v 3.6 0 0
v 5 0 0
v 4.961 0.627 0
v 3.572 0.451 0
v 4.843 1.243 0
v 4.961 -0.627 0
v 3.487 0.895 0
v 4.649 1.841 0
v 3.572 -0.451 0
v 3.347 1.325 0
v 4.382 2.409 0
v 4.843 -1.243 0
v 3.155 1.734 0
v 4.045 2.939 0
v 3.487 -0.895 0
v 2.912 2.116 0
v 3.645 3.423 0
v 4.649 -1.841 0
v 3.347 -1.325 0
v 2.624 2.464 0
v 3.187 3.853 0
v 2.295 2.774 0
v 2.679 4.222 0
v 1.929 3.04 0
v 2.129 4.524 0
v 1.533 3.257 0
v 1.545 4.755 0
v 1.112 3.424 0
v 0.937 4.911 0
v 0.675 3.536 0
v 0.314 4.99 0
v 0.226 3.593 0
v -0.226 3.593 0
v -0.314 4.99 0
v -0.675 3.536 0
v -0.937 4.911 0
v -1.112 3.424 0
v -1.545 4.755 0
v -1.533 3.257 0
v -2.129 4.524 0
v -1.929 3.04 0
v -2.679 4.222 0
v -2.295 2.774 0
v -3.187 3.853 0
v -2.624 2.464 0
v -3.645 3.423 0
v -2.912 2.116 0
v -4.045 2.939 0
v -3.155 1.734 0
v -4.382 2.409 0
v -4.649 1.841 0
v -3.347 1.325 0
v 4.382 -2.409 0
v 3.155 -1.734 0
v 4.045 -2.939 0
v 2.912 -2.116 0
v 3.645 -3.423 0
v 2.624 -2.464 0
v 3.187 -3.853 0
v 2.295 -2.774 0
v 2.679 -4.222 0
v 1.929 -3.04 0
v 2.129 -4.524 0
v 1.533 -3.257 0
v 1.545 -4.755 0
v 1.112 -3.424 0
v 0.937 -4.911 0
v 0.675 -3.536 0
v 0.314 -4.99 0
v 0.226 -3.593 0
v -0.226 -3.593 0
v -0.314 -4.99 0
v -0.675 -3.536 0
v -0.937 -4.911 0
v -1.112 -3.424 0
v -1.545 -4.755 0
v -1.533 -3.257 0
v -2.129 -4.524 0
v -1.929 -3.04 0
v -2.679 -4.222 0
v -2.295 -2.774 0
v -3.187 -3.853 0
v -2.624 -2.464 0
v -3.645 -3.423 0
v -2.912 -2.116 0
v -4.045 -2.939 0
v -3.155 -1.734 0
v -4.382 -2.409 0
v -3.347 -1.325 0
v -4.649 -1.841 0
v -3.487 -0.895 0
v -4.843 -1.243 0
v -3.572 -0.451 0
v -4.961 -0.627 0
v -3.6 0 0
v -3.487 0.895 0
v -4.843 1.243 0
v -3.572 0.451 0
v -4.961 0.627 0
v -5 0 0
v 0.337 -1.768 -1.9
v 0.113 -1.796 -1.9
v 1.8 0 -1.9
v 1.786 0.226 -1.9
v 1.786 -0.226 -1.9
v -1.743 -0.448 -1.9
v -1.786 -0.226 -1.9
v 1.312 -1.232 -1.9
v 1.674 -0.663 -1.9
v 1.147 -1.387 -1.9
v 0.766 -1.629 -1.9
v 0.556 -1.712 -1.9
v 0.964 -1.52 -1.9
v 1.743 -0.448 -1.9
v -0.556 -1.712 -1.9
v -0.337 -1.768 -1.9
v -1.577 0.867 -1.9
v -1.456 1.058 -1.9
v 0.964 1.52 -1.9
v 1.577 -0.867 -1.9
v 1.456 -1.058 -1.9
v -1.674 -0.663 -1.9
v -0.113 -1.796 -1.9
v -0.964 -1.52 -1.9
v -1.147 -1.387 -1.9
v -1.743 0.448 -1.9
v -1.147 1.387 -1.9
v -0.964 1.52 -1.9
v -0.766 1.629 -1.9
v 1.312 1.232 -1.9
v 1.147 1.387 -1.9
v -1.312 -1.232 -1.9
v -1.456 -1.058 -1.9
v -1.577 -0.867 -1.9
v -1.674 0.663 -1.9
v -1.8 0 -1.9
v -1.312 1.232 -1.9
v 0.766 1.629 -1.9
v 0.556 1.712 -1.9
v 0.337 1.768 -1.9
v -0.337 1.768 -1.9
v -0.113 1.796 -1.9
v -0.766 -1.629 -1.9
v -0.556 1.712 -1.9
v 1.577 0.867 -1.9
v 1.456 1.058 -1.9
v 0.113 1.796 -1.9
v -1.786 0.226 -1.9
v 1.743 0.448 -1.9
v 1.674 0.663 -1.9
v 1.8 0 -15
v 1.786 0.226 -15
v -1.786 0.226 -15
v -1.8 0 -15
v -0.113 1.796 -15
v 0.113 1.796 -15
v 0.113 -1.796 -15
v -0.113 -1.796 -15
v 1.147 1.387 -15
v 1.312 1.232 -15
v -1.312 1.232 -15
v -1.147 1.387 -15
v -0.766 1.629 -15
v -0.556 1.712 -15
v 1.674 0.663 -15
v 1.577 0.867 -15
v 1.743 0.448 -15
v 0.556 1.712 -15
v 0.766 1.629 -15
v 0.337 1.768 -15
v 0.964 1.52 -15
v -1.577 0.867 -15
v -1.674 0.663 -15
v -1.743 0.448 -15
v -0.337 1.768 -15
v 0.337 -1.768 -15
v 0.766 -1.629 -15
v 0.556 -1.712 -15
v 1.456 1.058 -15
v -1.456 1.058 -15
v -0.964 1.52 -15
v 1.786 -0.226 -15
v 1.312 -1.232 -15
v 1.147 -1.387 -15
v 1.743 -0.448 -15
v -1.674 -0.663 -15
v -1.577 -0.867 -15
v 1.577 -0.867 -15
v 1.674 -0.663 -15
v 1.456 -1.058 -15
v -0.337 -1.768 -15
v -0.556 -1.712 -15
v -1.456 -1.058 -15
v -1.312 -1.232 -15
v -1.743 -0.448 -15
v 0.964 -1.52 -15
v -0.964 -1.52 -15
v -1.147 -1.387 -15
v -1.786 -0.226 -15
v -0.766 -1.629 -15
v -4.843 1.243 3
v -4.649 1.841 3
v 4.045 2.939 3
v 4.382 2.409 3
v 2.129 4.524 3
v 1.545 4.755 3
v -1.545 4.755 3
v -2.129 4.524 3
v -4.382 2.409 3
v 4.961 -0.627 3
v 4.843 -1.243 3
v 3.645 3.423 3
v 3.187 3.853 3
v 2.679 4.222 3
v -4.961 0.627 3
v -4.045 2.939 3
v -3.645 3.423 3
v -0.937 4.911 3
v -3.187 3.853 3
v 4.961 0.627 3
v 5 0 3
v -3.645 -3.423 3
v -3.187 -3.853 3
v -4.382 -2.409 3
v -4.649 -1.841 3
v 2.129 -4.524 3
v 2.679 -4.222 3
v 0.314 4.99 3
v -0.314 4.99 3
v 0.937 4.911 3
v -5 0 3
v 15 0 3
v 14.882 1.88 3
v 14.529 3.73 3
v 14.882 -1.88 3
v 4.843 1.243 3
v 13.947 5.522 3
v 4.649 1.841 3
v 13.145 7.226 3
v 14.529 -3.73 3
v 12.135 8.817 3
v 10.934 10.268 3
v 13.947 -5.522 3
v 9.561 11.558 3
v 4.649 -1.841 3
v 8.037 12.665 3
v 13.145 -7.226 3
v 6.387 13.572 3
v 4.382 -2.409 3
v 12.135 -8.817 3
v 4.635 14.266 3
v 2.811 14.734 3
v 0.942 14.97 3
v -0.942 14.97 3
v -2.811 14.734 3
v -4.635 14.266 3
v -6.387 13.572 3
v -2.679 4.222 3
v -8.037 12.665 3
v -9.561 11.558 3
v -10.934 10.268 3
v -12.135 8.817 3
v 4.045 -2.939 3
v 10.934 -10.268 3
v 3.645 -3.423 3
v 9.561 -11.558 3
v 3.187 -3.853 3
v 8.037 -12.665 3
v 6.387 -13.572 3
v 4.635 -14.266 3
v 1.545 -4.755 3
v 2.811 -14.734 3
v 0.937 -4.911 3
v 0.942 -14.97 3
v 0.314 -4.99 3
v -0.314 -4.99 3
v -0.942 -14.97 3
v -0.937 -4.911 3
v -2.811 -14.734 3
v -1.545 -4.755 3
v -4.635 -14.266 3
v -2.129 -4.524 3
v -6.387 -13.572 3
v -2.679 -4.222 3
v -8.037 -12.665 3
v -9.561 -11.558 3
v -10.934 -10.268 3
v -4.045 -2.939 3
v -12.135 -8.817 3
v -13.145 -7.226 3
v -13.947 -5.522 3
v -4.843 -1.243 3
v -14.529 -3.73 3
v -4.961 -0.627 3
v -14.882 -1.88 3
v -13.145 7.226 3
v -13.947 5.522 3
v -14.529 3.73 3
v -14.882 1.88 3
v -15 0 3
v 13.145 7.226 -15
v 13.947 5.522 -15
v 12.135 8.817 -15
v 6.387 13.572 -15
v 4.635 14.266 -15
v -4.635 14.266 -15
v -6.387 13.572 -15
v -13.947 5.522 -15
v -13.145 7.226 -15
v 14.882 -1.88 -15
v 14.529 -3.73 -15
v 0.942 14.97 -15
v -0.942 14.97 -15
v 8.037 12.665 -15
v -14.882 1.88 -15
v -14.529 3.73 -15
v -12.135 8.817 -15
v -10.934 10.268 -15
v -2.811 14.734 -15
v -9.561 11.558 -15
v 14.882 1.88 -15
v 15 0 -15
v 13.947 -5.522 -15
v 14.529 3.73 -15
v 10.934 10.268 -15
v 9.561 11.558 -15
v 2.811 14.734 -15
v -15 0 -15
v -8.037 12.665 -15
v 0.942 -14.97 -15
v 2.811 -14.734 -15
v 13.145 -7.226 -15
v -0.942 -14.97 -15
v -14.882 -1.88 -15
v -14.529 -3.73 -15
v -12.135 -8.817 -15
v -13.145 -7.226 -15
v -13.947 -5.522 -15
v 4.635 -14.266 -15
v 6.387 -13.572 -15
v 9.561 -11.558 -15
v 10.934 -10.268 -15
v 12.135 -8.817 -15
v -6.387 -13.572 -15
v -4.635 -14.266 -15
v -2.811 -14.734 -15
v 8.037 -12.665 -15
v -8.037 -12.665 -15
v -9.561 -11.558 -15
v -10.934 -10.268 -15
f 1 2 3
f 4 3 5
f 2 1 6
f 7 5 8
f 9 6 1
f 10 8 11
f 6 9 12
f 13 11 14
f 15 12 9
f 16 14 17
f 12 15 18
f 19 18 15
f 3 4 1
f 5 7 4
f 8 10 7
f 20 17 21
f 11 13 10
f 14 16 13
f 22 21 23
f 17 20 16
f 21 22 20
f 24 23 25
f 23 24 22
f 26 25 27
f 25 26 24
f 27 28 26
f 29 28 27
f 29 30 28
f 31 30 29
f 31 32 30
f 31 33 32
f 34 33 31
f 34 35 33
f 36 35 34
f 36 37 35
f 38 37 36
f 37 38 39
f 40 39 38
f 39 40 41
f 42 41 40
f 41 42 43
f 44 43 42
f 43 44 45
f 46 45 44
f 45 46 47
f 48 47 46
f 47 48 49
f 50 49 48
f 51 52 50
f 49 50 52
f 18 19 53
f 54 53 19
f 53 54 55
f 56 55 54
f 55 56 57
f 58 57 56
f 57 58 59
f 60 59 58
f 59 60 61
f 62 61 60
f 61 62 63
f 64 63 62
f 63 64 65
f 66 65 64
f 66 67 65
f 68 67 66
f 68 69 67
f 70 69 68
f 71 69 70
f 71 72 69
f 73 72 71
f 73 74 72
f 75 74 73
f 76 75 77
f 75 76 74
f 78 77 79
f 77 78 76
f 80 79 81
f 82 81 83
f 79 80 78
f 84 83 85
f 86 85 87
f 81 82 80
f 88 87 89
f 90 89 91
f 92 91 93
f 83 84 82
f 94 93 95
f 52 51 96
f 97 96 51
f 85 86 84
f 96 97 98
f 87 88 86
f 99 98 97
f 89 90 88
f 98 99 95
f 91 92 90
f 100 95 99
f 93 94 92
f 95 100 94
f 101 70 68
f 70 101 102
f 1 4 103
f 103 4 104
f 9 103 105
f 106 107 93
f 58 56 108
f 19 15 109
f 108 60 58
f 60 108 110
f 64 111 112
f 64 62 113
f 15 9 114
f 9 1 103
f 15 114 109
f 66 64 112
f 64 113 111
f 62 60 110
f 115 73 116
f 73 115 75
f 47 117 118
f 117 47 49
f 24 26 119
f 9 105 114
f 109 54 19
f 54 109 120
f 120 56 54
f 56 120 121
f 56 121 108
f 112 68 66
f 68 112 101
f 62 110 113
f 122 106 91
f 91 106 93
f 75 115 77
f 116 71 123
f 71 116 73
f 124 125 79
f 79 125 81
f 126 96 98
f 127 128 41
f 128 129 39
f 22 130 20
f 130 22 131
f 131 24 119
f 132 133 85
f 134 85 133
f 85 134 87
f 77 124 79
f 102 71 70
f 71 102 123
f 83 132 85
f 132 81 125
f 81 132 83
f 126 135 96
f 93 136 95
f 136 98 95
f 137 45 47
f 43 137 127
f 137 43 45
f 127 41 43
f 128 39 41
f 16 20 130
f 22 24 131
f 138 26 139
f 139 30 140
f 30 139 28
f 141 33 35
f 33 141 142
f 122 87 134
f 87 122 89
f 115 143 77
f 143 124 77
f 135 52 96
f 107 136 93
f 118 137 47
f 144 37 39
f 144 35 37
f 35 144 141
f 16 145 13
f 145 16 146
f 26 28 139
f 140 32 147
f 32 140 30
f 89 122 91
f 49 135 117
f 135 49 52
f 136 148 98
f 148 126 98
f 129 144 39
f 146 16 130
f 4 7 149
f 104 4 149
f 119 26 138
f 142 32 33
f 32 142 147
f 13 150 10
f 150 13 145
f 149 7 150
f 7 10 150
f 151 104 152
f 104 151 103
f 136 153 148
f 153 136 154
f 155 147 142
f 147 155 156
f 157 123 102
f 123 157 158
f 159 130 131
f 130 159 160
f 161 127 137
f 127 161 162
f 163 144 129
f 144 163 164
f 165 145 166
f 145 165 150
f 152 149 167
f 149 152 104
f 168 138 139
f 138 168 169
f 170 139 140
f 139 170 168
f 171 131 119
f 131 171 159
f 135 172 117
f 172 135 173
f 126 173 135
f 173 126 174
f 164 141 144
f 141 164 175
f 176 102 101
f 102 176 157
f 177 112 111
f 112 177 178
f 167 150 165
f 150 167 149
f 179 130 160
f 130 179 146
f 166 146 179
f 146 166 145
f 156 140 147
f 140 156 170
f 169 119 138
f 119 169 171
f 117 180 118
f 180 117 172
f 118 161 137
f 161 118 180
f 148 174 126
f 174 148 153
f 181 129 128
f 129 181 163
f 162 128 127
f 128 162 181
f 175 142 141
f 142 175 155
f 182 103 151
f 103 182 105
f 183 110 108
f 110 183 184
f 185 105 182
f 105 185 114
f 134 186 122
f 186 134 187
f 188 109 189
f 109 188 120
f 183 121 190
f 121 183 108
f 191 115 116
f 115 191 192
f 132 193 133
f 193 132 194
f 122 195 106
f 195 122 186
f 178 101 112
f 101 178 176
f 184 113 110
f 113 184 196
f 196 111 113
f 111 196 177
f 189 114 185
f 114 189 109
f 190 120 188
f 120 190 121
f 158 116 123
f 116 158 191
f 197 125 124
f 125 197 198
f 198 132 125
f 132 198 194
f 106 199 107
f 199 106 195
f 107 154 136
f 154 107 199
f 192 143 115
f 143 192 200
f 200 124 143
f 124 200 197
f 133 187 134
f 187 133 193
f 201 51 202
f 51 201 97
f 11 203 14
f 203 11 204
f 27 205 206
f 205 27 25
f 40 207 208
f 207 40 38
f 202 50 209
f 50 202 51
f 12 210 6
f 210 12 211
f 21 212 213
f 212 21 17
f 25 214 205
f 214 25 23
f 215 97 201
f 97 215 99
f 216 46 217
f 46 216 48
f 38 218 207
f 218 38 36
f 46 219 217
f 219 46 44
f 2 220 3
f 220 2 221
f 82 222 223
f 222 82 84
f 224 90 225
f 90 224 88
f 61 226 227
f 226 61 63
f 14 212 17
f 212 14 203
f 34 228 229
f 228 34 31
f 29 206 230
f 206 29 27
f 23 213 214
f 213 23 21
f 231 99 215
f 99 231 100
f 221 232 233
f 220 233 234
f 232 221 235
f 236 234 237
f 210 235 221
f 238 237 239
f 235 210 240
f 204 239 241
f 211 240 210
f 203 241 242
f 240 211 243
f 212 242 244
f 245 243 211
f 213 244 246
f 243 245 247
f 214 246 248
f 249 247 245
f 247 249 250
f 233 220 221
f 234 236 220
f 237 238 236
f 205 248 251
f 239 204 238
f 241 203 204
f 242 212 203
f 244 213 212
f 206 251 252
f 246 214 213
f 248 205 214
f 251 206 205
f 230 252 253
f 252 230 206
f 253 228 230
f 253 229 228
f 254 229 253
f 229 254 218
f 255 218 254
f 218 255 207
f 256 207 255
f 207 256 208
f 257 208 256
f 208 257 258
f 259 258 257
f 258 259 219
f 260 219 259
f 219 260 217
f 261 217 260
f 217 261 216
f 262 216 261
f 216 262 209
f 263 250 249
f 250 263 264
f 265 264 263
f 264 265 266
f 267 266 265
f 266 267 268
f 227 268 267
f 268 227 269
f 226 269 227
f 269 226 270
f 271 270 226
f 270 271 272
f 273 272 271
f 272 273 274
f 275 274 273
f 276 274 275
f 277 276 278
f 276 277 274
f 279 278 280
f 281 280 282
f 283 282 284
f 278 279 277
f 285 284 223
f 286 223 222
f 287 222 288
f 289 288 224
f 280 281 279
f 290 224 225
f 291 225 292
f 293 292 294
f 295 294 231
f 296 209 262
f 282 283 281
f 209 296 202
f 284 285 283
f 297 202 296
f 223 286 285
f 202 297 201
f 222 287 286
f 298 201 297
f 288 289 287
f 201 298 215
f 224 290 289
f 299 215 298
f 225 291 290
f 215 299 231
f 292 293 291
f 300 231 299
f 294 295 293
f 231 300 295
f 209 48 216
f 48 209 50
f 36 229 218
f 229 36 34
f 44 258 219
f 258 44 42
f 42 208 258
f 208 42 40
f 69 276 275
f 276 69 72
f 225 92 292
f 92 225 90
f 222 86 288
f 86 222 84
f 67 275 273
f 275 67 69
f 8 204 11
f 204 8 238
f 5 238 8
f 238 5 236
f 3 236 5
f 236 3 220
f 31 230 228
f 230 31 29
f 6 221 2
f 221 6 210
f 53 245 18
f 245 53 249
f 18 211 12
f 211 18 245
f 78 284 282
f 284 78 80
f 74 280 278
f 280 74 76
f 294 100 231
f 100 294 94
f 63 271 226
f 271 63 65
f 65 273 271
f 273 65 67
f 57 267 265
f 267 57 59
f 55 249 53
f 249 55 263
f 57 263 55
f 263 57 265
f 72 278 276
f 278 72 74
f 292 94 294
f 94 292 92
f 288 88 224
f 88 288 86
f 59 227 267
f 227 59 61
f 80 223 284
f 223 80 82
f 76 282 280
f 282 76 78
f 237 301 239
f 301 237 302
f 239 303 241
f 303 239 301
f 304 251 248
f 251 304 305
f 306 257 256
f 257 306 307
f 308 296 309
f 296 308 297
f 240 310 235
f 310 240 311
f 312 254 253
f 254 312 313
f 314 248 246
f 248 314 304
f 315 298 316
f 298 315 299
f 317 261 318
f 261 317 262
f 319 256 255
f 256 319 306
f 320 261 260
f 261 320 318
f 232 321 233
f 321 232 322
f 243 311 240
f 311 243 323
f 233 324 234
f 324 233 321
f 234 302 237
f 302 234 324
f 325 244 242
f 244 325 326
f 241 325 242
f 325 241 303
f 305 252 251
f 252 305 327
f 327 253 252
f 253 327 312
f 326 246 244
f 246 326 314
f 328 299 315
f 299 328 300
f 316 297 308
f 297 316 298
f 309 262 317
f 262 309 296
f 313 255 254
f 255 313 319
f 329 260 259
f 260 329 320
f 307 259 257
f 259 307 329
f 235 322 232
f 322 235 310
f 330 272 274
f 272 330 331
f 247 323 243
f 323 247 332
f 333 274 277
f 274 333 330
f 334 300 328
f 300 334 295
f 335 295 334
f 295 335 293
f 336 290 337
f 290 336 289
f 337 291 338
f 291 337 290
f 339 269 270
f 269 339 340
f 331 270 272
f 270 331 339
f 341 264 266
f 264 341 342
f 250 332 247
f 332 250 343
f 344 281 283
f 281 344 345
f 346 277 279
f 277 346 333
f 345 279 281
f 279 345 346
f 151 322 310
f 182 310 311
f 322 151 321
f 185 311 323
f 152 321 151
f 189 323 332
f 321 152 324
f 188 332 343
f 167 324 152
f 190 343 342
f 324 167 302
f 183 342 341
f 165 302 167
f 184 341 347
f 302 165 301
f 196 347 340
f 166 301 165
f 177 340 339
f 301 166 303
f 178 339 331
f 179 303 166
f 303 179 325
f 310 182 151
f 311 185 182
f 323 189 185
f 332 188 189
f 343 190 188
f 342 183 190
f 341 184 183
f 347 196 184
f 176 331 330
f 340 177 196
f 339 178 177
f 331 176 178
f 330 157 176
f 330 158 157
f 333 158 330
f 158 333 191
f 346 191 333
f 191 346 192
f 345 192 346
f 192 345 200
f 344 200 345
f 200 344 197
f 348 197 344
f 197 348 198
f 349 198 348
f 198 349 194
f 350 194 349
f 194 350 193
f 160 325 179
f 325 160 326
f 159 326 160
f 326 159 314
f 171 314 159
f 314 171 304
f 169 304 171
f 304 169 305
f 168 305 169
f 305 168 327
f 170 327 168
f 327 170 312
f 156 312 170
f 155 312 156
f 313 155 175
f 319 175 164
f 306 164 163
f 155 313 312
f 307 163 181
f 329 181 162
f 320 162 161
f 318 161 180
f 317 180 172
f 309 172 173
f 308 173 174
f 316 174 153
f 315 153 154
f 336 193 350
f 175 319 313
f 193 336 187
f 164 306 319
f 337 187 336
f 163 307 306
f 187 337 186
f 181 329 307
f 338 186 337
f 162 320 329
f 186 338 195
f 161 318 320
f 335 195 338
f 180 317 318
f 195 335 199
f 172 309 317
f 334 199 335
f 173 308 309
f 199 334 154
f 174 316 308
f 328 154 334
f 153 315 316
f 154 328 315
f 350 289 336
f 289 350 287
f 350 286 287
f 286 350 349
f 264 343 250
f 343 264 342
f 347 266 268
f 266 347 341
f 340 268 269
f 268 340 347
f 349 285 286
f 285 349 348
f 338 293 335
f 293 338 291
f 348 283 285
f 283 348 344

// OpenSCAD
$fn = 50;


difference() {
	union() {
		translate(v = [0, 0, -15.0000000000]) {
			cylinder(h = 18, r = 15.0000000000);
		}
	}
	union() {
		translate(v = [0, 0, 0]) {
			rotate(a = [0, 0, 0]) {
				difference() {
					union() {
						translate(v = [0, 0, -18.0000000000]) {
							cylinder(h = 18, r = 1.5000000000);
						}
						translate(v = [0, 0, -1.9000000000]) {
							cylinder(h = 1.9000000000, r1 = 1.8000000000, r2 = 3.6000000000);
						}
						translate(v = [0, 0, -18.0000000000]) {
							cylinder(h = 18, r = 1.8000000000);
						}
						translate(v = [0, 0, -18.0000000000]) {
							cylinder(h = 18, r = 1.5000000000);
						}
					}
					union();
				}
			}
		}
		#cylinder(h = 3, r = 5.0000000000);
	}
}
